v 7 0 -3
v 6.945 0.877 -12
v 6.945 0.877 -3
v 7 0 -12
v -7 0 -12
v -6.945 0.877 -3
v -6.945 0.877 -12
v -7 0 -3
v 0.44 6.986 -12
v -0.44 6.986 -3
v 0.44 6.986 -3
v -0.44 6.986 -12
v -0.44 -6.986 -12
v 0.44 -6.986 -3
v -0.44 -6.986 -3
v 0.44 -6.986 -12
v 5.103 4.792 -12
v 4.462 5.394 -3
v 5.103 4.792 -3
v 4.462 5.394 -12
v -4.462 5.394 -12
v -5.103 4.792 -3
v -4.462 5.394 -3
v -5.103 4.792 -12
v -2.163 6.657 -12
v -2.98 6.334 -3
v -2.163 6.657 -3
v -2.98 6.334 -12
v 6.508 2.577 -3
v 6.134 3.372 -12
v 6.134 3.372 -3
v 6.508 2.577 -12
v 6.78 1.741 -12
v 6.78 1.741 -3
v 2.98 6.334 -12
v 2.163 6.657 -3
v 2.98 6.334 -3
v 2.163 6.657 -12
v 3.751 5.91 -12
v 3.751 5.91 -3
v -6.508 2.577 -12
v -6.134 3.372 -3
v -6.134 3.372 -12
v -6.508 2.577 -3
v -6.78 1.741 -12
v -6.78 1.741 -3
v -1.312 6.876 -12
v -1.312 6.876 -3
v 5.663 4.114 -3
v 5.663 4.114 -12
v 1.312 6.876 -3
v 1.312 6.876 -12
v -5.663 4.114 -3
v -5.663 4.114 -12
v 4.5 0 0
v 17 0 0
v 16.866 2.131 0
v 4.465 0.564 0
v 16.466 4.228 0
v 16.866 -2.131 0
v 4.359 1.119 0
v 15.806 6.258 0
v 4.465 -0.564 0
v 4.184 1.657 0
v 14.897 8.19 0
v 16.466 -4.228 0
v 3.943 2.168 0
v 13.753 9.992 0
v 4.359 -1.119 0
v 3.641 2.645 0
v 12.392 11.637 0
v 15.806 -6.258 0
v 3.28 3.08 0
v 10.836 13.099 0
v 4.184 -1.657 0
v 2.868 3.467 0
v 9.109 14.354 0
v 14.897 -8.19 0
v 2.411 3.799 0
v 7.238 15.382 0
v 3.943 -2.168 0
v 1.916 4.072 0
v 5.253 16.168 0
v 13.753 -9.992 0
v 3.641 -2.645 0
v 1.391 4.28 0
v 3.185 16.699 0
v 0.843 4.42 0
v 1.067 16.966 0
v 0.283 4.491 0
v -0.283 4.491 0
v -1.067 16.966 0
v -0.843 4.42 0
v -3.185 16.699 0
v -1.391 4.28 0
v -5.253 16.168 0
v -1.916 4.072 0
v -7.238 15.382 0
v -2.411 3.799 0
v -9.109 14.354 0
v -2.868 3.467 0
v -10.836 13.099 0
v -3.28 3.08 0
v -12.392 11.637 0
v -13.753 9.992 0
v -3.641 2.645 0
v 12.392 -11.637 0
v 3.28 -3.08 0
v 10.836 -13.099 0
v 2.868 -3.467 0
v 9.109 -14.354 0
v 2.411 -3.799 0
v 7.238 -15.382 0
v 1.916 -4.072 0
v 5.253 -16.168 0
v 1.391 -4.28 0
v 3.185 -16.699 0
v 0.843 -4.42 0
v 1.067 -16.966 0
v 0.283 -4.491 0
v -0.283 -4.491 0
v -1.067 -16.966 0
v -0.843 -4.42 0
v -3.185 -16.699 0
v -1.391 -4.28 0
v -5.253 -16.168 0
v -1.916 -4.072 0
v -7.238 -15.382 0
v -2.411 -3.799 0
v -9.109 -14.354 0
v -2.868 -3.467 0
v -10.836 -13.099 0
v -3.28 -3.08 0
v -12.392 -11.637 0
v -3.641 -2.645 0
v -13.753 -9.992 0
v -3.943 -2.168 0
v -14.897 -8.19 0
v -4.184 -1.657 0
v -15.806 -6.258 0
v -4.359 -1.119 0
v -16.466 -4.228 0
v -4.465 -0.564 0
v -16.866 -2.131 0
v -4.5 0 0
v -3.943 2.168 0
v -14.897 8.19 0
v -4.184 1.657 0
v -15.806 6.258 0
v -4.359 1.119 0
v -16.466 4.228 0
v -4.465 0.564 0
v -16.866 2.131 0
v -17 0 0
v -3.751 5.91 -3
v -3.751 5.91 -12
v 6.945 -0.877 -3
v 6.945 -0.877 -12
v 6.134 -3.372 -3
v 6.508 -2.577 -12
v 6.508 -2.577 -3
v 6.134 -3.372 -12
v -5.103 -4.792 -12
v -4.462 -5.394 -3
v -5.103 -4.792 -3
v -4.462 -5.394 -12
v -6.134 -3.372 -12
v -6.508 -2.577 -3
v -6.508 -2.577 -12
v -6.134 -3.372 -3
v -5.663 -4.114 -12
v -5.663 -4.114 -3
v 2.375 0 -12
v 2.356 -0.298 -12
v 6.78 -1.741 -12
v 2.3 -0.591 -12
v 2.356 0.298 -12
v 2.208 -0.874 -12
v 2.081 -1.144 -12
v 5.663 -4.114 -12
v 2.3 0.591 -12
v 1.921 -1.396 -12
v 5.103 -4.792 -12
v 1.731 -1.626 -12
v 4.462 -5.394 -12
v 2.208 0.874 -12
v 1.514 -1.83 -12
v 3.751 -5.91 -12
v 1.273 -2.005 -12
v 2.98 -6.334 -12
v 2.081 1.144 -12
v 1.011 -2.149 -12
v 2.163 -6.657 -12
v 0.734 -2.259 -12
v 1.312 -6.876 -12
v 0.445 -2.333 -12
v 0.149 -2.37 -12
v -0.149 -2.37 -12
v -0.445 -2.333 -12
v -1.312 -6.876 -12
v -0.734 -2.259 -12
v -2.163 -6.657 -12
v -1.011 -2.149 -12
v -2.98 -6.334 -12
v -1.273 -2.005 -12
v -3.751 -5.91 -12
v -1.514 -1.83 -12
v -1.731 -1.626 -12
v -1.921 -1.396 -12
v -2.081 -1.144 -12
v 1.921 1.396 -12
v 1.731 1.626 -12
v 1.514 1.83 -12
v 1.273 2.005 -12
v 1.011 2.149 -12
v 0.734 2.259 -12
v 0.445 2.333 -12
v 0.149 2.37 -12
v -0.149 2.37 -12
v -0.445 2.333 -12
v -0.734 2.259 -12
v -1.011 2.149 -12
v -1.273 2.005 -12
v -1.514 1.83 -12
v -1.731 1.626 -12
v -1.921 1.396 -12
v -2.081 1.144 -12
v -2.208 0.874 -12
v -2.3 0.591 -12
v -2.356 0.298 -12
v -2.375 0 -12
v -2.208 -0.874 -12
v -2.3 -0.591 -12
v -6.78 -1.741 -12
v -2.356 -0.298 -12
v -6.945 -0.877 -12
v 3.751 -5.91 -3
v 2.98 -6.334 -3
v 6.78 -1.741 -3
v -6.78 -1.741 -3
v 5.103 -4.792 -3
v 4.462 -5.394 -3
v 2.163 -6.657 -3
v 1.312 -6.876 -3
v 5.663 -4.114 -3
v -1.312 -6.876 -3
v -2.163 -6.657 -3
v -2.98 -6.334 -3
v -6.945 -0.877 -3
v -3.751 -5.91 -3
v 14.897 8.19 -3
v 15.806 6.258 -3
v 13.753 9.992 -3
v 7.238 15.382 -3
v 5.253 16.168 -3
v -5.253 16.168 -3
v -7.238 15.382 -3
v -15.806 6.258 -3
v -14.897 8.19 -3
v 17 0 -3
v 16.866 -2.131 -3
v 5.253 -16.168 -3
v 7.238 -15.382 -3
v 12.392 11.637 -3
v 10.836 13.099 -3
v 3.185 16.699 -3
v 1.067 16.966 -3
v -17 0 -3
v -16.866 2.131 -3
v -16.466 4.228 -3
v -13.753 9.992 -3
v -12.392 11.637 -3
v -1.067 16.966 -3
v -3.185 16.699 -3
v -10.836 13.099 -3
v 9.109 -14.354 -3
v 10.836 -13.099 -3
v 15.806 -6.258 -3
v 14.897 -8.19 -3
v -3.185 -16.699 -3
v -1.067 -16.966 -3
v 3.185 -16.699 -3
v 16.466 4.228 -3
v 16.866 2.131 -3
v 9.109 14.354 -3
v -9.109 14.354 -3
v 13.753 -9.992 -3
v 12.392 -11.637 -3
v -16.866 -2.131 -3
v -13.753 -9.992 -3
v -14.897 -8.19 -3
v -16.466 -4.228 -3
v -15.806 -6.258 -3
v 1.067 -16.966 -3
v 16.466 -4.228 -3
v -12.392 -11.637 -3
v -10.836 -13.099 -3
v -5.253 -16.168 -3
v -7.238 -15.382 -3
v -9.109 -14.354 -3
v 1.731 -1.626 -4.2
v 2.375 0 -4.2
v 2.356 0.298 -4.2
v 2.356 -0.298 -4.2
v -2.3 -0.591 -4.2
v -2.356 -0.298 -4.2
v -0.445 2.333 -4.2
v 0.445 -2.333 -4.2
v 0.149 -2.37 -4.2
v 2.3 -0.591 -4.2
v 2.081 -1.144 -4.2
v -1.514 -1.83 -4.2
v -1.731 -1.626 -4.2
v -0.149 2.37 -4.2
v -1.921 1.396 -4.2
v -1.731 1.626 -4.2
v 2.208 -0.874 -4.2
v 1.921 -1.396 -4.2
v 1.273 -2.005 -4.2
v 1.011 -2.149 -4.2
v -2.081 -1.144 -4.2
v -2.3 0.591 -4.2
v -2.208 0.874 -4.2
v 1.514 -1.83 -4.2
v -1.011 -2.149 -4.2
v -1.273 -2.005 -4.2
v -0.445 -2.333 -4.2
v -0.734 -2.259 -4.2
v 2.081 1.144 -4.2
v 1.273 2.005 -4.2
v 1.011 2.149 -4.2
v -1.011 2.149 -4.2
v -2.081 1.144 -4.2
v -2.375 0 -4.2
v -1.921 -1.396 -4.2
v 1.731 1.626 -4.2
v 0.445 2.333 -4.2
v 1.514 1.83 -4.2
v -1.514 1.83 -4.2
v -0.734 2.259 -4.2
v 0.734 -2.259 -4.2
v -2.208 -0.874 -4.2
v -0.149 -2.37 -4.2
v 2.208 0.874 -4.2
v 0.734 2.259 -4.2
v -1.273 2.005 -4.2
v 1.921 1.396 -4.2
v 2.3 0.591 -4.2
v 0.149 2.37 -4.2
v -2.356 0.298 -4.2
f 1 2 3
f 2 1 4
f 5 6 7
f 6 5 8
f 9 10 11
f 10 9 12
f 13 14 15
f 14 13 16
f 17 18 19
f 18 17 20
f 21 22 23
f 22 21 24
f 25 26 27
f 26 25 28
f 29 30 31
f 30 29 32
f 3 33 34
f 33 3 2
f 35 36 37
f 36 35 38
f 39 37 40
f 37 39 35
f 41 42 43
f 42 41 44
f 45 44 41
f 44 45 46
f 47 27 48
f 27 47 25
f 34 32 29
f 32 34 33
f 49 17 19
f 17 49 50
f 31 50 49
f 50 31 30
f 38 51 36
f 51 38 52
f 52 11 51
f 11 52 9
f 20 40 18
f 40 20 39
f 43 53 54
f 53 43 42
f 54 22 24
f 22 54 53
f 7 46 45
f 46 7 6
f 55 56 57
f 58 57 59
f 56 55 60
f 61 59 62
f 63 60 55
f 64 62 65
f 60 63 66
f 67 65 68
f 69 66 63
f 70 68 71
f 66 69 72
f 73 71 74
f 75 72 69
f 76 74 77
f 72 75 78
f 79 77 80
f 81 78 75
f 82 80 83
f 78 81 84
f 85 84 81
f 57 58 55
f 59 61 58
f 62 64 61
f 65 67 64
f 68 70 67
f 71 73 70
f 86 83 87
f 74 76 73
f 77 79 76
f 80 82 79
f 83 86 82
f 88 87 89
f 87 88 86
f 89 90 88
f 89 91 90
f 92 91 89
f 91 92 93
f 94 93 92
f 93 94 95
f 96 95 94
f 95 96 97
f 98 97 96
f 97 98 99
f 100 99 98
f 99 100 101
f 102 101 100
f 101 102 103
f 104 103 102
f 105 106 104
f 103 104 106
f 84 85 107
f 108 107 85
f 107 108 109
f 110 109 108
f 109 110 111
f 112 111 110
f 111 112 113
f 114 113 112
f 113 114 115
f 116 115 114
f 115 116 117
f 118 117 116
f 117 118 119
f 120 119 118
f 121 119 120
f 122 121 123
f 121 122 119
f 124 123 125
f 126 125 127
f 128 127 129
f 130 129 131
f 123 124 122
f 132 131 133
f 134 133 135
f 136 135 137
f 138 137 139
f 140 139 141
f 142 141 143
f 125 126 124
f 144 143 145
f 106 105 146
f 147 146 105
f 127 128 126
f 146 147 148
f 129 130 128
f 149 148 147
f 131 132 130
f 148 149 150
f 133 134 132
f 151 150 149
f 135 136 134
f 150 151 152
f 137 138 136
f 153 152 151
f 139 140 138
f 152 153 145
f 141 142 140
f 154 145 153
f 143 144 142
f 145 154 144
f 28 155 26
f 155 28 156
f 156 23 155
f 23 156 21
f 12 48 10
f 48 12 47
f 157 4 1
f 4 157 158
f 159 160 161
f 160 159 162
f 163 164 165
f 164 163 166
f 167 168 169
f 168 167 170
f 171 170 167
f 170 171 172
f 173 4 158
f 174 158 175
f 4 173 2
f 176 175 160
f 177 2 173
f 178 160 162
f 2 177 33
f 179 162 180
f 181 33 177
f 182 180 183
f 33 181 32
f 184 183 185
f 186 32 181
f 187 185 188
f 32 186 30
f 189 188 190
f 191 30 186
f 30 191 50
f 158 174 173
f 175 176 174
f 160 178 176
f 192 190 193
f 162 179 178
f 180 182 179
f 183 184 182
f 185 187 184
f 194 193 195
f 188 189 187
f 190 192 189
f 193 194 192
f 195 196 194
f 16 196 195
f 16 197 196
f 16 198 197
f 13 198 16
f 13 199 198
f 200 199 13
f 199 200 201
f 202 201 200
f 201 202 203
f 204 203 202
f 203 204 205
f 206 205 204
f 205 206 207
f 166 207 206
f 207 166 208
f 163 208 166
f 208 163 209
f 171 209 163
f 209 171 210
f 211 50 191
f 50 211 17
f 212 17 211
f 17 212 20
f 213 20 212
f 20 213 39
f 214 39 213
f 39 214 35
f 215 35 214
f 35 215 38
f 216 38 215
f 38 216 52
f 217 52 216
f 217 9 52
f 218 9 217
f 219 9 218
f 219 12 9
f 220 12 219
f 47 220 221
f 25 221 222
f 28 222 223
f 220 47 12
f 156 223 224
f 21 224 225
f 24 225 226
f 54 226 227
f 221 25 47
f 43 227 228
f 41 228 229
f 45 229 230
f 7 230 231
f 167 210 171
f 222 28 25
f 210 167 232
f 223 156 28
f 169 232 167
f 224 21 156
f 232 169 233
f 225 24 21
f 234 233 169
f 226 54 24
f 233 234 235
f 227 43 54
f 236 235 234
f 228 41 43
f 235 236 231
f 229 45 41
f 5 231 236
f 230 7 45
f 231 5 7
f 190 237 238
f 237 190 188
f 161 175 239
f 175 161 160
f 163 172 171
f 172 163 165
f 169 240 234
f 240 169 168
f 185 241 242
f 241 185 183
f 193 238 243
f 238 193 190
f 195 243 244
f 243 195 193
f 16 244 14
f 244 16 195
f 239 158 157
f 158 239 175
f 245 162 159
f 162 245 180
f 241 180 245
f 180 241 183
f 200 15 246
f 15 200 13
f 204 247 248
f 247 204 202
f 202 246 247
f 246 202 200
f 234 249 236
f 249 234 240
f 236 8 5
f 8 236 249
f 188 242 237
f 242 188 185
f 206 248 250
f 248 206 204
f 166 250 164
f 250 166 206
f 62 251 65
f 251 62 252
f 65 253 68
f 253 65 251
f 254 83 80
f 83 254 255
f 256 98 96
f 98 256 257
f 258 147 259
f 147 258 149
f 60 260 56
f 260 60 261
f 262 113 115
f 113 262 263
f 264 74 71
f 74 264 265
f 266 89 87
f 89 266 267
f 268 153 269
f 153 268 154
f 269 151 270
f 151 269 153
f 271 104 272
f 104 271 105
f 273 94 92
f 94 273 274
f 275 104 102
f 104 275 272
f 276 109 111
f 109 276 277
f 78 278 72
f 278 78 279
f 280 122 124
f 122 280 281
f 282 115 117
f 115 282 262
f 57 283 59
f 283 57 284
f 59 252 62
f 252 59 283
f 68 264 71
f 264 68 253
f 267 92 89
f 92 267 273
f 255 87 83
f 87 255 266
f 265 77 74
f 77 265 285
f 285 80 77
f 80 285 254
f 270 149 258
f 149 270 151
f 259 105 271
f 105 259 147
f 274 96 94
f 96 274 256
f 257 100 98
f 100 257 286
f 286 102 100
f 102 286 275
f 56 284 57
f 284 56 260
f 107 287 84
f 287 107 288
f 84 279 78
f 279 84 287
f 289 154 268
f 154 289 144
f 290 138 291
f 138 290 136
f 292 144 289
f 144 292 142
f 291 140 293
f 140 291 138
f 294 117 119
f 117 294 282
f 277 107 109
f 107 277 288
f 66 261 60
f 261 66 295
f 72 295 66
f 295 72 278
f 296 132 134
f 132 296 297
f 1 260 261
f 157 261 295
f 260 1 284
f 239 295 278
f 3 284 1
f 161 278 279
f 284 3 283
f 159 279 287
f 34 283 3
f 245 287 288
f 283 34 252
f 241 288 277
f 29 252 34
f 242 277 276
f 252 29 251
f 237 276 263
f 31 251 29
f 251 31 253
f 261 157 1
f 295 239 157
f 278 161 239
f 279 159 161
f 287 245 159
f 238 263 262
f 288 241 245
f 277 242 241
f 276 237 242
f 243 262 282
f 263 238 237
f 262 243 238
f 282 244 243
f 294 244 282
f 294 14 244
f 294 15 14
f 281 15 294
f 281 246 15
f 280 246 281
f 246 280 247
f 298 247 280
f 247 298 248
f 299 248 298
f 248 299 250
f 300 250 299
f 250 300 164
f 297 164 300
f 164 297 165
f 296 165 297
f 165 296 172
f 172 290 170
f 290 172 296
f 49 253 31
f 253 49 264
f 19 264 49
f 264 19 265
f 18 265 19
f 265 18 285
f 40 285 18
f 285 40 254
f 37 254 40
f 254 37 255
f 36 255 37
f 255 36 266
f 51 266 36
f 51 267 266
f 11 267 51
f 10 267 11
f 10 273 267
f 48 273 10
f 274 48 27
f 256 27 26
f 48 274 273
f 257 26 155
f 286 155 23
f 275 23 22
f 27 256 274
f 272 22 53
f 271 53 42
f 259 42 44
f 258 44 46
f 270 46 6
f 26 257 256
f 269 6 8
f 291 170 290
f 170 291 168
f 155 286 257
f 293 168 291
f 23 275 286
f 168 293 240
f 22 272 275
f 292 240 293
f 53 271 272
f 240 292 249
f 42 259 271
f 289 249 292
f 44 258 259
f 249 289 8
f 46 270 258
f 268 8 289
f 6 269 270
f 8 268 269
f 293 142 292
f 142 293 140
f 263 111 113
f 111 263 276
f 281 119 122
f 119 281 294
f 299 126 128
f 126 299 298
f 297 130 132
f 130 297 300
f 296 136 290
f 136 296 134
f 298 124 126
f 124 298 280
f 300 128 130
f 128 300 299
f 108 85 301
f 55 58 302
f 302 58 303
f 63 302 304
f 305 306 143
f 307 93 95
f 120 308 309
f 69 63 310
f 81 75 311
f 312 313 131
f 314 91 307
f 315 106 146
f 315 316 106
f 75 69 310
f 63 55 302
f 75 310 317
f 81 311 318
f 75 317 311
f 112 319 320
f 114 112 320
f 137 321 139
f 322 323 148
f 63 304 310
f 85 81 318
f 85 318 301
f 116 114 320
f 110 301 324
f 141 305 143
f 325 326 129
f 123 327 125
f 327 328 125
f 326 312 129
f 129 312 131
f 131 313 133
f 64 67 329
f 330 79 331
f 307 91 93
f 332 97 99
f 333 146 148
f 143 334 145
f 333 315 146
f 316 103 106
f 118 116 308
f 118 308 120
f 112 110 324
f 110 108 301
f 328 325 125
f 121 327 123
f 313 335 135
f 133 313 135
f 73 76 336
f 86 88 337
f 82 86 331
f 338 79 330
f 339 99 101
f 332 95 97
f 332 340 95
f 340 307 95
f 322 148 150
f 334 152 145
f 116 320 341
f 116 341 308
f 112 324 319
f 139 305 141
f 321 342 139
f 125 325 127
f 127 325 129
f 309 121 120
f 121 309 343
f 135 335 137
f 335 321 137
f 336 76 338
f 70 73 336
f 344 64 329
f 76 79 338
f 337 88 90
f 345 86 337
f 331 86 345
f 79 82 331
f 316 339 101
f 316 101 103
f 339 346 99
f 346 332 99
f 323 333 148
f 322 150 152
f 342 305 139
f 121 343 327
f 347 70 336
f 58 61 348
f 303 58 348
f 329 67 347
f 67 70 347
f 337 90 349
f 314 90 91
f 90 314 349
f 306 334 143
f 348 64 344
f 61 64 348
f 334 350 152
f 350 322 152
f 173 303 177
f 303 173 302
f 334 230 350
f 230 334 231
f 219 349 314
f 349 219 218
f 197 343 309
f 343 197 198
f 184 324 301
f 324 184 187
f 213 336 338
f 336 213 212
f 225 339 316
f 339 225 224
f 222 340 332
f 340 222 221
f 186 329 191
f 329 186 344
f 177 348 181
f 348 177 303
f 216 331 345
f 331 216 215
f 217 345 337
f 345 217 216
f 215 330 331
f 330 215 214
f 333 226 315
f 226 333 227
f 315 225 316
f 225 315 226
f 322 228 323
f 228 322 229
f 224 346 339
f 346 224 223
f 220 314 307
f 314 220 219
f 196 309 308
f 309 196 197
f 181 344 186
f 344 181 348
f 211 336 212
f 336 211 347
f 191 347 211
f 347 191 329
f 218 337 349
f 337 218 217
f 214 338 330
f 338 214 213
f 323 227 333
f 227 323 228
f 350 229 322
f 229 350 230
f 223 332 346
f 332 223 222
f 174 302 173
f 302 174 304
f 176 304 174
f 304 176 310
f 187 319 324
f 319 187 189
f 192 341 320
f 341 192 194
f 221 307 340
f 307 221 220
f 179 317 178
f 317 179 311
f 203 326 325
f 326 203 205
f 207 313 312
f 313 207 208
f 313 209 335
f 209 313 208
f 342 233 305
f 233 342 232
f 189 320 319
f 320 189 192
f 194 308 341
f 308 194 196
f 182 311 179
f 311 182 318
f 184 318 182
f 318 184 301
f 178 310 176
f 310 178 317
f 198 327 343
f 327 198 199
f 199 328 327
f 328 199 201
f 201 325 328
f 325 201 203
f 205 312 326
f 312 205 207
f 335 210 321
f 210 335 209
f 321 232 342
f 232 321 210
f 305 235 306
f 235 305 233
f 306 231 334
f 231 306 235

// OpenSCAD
$fn = 50;


difference() {
	union() {
		translate(v = [0, 0, -12.0000000000]) {
			cylinder(h = 12, r = 7.0000000000);
		}
		translate(v = [0, 0, -3.0000000000]) {
			cylinder(h = 3, r = 17.0000000000);
		}
	}
	union() {
		translate(v = [0, 0, 0]) {
			rotate(a = [0, 0, 0]) {
				difference() {
					union() {
						#translate(v = [0, 0, -12.0000000000]) {
							cylinder(h = 12, r = 2.2500000000);
						}
						#translate(v = [0, 0, -4.2000000000]) {
							cylinder(h = 4.2000000000, r1 = 2.3750000000, r2 = 4.5000000000);
						}
						#translate(v = [0, 0, -12.0000000000]) {
							cylinder(h = 12, r = 2.3750000000);
						}
						#translate(v = [0, 0, -12.0000000000]) {
							cylinder(h = 12, r = 2.2500000000);
						}
					}
					union();
				}
			}
		}
	}
}
